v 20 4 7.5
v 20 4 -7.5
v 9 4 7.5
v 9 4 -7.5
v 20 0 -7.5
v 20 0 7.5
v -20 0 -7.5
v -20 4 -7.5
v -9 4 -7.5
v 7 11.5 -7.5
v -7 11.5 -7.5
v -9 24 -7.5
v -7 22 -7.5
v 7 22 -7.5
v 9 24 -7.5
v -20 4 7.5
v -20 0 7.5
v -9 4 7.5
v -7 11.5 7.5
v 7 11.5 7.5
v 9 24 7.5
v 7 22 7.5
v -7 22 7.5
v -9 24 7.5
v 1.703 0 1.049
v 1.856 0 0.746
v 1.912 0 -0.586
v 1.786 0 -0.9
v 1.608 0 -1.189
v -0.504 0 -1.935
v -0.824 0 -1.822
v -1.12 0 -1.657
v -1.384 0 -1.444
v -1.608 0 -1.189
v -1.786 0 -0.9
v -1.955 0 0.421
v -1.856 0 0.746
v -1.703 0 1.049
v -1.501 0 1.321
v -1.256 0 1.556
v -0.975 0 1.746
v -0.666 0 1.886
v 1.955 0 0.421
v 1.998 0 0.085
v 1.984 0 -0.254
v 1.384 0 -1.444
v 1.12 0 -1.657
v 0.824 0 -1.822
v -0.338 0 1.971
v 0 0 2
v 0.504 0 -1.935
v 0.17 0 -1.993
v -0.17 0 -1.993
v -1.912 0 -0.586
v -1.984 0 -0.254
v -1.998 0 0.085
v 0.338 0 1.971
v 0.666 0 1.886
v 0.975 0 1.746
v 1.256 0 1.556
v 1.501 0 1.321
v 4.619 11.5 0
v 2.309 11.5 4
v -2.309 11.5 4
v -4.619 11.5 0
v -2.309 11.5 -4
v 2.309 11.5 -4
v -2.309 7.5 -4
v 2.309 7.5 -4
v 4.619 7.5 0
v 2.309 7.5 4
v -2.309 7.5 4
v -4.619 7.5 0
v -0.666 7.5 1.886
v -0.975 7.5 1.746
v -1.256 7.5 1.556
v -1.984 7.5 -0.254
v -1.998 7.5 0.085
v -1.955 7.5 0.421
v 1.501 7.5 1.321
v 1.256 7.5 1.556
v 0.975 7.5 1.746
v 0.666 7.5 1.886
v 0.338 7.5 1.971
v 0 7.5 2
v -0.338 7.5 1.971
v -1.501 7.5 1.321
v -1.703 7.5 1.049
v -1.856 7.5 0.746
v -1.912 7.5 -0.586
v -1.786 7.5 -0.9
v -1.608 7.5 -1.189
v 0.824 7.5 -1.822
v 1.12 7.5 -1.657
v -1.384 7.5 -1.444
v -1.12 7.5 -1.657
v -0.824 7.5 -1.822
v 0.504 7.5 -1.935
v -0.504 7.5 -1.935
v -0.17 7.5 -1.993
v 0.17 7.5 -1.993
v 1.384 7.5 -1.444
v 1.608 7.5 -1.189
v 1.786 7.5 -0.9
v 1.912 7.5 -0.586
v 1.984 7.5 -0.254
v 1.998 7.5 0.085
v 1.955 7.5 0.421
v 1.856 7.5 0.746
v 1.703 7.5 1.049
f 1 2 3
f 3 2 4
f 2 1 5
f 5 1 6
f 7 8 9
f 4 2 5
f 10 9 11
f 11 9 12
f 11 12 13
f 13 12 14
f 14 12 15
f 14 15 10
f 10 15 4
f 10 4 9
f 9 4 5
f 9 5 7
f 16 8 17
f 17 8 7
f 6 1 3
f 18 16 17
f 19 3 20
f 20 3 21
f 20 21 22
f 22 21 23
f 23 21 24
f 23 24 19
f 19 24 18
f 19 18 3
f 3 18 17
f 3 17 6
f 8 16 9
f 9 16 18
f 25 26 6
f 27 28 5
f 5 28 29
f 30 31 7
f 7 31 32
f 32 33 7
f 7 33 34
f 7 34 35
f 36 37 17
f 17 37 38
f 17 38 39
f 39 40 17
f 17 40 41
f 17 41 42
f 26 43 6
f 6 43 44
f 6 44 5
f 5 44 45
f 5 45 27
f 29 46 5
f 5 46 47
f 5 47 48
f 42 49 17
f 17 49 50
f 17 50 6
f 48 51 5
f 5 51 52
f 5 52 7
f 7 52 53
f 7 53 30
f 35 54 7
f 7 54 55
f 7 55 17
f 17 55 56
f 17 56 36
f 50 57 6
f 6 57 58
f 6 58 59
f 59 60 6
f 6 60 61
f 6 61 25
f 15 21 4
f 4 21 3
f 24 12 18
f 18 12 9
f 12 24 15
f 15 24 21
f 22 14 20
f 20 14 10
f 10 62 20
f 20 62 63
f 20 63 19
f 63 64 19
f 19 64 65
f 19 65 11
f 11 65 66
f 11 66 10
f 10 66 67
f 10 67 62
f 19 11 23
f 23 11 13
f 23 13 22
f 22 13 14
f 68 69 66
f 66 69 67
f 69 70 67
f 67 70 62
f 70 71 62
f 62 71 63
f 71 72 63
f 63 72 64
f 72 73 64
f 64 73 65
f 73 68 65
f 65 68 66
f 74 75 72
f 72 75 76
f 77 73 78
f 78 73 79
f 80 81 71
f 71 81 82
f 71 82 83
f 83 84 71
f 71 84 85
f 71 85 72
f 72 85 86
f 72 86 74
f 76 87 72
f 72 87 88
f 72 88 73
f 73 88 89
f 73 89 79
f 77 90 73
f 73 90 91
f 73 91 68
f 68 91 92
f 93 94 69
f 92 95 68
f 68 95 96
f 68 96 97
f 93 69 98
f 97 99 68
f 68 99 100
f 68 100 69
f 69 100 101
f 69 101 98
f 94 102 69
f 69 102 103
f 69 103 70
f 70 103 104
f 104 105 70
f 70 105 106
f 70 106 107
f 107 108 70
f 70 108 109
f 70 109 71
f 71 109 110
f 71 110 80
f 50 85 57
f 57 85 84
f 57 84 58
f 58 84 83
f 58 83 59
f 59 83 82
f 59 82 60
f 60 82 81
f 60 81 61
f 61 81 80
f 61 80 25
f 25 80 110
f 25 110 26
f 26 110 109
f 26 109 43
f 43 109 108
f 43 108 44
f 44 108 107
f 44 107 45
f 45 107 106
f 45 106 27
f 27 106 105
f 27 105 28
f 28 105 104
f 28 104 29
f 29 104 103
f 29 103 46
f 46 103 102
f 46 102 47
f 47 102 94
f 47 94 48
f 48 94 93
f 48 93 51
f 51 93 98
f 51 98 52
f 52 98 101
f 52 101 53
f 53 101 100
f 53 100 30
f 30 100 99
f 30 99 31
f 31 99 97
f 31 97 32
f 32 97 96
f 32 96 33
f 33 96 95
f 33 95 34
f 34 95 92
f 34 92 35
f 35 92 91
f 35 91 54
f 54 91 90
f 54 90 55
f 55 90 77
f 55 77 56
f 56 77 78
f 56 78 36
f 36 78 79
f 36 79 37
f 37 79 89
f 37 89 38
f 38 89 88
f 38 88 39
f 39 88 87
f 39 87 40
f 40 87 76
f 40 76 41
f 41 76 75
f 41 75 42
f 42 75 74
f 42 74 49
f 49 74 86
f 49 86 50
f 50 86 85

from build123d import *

# Parameters (mm, degrees)
BASESKETCH_W       = 40
BASESKETCH_H       = 15
BASE_DEPTH         = 4
HOLDERSKETCH_W     = 18
HOLDERSKETCH_H     = 15
HOLDER_DEPTH       = 20
MOTORCUTSKETCH_W   = 14
MOTORCUTSKETCH_H   = 10.5
MOTORCUT_DEPTH     = 19
NUTTHOLE_DEPTH     = 4
HOLESKETCH_R       = 2
CUT_EXTRUDE3_DEPTH = 64


with BuildPart() as part:
    # BaseSketch → Base (new body)
    with BuildSketch(Plane(origin=(0, 0, 0), x_dir=(1, 0, 0), z_dir=(0, 1, 0))):
        Rectangle(BASESKETCH_W, BASESKETCH_H)
    extrude(amount=BASE_DEPTH)

    # HolderSketch → Holder (add)
    with BuildSketch(Plane(origin=(0, 4, 0), x_dir=(1, 0, 0), z_dir=(0, 1, 0))):
        Rectangle(HOLDERSKETCH_W, HOLDERSKETCH_H)
    extrude(amount=HOLDER_DEPTH)

    # MotorCutSketch → MotorCut (cut)
    with BuildSketch(Plane.XY.offset(7.5)):
        with Locations((0, 16.75)):
            Rectangle(MOTORCUTSKETCH_W, MOTORCUTSKETCH_H)
    extrude(amount=-MOTORCUT_DEPTH, mode=Mode.SUBTRACT)

    # NuttHoleSketch → NuttHole (cut)
    with BuildSketch(Plane(origin=(0, 11.5, 0), x_dir=(1, 0, 0), z_dir=(0, 1, 0))):
        Polygon((-2.309401077, 4), (-4.618802154, 0), (-2.309401077, -4), (2.309401077, -4), (4.618802154, 0), (2.309401077, 4), align=None)
    extrude(amount=-NUTTHOLE_DEPTH, mode=Mode.SUBTRACT)

    # HoleSketch → Cut-Extrude3 (cut)
    with BuildSketch(Plane(origin=(0, 7.5, 0), x_dir=(1, 0, 0), z_dir=(0, 1, 0))):
        Circle(HOLESKETCH_R)
    extrude(amount=-CUT_EXTRUDE3_DEPTH, mode=Mode.SUBTRACT)


solid = part.part
